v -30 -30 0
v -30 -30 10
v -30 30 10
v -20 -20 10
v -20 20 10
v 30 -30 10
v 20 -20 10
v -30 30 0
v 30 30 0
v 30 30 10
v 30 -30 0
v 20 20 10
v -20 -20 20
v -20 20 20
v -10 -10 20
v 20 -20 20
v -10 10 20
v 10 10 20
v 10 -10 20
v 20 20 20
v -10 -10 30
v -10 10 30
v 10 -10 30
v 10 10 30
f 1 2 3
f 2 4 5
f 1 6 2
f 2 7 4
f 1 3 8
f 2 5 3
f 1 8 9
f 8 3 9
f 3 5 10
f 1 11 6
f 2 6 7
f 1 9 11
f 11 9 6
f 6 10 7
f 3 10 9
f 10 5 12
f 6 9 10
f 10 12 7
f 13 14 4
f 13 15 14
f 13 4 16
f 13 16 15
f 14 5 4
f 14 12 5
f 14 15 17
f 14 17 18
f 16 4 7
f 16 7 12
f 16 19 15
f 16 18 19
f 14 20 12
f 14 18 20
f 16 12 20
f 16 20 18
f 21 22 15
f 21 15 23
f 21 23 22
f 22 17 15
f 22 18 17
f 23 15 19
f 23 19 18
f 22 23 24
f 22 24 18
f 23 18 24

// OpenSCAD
// 3段の階段状ピラミッド（中心揃え）

step_height = 10;
sizes = [60, 40, 20];

module stepped_pyramid() {
    union() {
        for (i = [0 : len(sizes) - 1]) {
            translate([0, 0, i * step_height])
                linear_extrude(height = step_height)
                    square(sizes[i], center = true);
        }
    }
}

stepped_pyramid();
